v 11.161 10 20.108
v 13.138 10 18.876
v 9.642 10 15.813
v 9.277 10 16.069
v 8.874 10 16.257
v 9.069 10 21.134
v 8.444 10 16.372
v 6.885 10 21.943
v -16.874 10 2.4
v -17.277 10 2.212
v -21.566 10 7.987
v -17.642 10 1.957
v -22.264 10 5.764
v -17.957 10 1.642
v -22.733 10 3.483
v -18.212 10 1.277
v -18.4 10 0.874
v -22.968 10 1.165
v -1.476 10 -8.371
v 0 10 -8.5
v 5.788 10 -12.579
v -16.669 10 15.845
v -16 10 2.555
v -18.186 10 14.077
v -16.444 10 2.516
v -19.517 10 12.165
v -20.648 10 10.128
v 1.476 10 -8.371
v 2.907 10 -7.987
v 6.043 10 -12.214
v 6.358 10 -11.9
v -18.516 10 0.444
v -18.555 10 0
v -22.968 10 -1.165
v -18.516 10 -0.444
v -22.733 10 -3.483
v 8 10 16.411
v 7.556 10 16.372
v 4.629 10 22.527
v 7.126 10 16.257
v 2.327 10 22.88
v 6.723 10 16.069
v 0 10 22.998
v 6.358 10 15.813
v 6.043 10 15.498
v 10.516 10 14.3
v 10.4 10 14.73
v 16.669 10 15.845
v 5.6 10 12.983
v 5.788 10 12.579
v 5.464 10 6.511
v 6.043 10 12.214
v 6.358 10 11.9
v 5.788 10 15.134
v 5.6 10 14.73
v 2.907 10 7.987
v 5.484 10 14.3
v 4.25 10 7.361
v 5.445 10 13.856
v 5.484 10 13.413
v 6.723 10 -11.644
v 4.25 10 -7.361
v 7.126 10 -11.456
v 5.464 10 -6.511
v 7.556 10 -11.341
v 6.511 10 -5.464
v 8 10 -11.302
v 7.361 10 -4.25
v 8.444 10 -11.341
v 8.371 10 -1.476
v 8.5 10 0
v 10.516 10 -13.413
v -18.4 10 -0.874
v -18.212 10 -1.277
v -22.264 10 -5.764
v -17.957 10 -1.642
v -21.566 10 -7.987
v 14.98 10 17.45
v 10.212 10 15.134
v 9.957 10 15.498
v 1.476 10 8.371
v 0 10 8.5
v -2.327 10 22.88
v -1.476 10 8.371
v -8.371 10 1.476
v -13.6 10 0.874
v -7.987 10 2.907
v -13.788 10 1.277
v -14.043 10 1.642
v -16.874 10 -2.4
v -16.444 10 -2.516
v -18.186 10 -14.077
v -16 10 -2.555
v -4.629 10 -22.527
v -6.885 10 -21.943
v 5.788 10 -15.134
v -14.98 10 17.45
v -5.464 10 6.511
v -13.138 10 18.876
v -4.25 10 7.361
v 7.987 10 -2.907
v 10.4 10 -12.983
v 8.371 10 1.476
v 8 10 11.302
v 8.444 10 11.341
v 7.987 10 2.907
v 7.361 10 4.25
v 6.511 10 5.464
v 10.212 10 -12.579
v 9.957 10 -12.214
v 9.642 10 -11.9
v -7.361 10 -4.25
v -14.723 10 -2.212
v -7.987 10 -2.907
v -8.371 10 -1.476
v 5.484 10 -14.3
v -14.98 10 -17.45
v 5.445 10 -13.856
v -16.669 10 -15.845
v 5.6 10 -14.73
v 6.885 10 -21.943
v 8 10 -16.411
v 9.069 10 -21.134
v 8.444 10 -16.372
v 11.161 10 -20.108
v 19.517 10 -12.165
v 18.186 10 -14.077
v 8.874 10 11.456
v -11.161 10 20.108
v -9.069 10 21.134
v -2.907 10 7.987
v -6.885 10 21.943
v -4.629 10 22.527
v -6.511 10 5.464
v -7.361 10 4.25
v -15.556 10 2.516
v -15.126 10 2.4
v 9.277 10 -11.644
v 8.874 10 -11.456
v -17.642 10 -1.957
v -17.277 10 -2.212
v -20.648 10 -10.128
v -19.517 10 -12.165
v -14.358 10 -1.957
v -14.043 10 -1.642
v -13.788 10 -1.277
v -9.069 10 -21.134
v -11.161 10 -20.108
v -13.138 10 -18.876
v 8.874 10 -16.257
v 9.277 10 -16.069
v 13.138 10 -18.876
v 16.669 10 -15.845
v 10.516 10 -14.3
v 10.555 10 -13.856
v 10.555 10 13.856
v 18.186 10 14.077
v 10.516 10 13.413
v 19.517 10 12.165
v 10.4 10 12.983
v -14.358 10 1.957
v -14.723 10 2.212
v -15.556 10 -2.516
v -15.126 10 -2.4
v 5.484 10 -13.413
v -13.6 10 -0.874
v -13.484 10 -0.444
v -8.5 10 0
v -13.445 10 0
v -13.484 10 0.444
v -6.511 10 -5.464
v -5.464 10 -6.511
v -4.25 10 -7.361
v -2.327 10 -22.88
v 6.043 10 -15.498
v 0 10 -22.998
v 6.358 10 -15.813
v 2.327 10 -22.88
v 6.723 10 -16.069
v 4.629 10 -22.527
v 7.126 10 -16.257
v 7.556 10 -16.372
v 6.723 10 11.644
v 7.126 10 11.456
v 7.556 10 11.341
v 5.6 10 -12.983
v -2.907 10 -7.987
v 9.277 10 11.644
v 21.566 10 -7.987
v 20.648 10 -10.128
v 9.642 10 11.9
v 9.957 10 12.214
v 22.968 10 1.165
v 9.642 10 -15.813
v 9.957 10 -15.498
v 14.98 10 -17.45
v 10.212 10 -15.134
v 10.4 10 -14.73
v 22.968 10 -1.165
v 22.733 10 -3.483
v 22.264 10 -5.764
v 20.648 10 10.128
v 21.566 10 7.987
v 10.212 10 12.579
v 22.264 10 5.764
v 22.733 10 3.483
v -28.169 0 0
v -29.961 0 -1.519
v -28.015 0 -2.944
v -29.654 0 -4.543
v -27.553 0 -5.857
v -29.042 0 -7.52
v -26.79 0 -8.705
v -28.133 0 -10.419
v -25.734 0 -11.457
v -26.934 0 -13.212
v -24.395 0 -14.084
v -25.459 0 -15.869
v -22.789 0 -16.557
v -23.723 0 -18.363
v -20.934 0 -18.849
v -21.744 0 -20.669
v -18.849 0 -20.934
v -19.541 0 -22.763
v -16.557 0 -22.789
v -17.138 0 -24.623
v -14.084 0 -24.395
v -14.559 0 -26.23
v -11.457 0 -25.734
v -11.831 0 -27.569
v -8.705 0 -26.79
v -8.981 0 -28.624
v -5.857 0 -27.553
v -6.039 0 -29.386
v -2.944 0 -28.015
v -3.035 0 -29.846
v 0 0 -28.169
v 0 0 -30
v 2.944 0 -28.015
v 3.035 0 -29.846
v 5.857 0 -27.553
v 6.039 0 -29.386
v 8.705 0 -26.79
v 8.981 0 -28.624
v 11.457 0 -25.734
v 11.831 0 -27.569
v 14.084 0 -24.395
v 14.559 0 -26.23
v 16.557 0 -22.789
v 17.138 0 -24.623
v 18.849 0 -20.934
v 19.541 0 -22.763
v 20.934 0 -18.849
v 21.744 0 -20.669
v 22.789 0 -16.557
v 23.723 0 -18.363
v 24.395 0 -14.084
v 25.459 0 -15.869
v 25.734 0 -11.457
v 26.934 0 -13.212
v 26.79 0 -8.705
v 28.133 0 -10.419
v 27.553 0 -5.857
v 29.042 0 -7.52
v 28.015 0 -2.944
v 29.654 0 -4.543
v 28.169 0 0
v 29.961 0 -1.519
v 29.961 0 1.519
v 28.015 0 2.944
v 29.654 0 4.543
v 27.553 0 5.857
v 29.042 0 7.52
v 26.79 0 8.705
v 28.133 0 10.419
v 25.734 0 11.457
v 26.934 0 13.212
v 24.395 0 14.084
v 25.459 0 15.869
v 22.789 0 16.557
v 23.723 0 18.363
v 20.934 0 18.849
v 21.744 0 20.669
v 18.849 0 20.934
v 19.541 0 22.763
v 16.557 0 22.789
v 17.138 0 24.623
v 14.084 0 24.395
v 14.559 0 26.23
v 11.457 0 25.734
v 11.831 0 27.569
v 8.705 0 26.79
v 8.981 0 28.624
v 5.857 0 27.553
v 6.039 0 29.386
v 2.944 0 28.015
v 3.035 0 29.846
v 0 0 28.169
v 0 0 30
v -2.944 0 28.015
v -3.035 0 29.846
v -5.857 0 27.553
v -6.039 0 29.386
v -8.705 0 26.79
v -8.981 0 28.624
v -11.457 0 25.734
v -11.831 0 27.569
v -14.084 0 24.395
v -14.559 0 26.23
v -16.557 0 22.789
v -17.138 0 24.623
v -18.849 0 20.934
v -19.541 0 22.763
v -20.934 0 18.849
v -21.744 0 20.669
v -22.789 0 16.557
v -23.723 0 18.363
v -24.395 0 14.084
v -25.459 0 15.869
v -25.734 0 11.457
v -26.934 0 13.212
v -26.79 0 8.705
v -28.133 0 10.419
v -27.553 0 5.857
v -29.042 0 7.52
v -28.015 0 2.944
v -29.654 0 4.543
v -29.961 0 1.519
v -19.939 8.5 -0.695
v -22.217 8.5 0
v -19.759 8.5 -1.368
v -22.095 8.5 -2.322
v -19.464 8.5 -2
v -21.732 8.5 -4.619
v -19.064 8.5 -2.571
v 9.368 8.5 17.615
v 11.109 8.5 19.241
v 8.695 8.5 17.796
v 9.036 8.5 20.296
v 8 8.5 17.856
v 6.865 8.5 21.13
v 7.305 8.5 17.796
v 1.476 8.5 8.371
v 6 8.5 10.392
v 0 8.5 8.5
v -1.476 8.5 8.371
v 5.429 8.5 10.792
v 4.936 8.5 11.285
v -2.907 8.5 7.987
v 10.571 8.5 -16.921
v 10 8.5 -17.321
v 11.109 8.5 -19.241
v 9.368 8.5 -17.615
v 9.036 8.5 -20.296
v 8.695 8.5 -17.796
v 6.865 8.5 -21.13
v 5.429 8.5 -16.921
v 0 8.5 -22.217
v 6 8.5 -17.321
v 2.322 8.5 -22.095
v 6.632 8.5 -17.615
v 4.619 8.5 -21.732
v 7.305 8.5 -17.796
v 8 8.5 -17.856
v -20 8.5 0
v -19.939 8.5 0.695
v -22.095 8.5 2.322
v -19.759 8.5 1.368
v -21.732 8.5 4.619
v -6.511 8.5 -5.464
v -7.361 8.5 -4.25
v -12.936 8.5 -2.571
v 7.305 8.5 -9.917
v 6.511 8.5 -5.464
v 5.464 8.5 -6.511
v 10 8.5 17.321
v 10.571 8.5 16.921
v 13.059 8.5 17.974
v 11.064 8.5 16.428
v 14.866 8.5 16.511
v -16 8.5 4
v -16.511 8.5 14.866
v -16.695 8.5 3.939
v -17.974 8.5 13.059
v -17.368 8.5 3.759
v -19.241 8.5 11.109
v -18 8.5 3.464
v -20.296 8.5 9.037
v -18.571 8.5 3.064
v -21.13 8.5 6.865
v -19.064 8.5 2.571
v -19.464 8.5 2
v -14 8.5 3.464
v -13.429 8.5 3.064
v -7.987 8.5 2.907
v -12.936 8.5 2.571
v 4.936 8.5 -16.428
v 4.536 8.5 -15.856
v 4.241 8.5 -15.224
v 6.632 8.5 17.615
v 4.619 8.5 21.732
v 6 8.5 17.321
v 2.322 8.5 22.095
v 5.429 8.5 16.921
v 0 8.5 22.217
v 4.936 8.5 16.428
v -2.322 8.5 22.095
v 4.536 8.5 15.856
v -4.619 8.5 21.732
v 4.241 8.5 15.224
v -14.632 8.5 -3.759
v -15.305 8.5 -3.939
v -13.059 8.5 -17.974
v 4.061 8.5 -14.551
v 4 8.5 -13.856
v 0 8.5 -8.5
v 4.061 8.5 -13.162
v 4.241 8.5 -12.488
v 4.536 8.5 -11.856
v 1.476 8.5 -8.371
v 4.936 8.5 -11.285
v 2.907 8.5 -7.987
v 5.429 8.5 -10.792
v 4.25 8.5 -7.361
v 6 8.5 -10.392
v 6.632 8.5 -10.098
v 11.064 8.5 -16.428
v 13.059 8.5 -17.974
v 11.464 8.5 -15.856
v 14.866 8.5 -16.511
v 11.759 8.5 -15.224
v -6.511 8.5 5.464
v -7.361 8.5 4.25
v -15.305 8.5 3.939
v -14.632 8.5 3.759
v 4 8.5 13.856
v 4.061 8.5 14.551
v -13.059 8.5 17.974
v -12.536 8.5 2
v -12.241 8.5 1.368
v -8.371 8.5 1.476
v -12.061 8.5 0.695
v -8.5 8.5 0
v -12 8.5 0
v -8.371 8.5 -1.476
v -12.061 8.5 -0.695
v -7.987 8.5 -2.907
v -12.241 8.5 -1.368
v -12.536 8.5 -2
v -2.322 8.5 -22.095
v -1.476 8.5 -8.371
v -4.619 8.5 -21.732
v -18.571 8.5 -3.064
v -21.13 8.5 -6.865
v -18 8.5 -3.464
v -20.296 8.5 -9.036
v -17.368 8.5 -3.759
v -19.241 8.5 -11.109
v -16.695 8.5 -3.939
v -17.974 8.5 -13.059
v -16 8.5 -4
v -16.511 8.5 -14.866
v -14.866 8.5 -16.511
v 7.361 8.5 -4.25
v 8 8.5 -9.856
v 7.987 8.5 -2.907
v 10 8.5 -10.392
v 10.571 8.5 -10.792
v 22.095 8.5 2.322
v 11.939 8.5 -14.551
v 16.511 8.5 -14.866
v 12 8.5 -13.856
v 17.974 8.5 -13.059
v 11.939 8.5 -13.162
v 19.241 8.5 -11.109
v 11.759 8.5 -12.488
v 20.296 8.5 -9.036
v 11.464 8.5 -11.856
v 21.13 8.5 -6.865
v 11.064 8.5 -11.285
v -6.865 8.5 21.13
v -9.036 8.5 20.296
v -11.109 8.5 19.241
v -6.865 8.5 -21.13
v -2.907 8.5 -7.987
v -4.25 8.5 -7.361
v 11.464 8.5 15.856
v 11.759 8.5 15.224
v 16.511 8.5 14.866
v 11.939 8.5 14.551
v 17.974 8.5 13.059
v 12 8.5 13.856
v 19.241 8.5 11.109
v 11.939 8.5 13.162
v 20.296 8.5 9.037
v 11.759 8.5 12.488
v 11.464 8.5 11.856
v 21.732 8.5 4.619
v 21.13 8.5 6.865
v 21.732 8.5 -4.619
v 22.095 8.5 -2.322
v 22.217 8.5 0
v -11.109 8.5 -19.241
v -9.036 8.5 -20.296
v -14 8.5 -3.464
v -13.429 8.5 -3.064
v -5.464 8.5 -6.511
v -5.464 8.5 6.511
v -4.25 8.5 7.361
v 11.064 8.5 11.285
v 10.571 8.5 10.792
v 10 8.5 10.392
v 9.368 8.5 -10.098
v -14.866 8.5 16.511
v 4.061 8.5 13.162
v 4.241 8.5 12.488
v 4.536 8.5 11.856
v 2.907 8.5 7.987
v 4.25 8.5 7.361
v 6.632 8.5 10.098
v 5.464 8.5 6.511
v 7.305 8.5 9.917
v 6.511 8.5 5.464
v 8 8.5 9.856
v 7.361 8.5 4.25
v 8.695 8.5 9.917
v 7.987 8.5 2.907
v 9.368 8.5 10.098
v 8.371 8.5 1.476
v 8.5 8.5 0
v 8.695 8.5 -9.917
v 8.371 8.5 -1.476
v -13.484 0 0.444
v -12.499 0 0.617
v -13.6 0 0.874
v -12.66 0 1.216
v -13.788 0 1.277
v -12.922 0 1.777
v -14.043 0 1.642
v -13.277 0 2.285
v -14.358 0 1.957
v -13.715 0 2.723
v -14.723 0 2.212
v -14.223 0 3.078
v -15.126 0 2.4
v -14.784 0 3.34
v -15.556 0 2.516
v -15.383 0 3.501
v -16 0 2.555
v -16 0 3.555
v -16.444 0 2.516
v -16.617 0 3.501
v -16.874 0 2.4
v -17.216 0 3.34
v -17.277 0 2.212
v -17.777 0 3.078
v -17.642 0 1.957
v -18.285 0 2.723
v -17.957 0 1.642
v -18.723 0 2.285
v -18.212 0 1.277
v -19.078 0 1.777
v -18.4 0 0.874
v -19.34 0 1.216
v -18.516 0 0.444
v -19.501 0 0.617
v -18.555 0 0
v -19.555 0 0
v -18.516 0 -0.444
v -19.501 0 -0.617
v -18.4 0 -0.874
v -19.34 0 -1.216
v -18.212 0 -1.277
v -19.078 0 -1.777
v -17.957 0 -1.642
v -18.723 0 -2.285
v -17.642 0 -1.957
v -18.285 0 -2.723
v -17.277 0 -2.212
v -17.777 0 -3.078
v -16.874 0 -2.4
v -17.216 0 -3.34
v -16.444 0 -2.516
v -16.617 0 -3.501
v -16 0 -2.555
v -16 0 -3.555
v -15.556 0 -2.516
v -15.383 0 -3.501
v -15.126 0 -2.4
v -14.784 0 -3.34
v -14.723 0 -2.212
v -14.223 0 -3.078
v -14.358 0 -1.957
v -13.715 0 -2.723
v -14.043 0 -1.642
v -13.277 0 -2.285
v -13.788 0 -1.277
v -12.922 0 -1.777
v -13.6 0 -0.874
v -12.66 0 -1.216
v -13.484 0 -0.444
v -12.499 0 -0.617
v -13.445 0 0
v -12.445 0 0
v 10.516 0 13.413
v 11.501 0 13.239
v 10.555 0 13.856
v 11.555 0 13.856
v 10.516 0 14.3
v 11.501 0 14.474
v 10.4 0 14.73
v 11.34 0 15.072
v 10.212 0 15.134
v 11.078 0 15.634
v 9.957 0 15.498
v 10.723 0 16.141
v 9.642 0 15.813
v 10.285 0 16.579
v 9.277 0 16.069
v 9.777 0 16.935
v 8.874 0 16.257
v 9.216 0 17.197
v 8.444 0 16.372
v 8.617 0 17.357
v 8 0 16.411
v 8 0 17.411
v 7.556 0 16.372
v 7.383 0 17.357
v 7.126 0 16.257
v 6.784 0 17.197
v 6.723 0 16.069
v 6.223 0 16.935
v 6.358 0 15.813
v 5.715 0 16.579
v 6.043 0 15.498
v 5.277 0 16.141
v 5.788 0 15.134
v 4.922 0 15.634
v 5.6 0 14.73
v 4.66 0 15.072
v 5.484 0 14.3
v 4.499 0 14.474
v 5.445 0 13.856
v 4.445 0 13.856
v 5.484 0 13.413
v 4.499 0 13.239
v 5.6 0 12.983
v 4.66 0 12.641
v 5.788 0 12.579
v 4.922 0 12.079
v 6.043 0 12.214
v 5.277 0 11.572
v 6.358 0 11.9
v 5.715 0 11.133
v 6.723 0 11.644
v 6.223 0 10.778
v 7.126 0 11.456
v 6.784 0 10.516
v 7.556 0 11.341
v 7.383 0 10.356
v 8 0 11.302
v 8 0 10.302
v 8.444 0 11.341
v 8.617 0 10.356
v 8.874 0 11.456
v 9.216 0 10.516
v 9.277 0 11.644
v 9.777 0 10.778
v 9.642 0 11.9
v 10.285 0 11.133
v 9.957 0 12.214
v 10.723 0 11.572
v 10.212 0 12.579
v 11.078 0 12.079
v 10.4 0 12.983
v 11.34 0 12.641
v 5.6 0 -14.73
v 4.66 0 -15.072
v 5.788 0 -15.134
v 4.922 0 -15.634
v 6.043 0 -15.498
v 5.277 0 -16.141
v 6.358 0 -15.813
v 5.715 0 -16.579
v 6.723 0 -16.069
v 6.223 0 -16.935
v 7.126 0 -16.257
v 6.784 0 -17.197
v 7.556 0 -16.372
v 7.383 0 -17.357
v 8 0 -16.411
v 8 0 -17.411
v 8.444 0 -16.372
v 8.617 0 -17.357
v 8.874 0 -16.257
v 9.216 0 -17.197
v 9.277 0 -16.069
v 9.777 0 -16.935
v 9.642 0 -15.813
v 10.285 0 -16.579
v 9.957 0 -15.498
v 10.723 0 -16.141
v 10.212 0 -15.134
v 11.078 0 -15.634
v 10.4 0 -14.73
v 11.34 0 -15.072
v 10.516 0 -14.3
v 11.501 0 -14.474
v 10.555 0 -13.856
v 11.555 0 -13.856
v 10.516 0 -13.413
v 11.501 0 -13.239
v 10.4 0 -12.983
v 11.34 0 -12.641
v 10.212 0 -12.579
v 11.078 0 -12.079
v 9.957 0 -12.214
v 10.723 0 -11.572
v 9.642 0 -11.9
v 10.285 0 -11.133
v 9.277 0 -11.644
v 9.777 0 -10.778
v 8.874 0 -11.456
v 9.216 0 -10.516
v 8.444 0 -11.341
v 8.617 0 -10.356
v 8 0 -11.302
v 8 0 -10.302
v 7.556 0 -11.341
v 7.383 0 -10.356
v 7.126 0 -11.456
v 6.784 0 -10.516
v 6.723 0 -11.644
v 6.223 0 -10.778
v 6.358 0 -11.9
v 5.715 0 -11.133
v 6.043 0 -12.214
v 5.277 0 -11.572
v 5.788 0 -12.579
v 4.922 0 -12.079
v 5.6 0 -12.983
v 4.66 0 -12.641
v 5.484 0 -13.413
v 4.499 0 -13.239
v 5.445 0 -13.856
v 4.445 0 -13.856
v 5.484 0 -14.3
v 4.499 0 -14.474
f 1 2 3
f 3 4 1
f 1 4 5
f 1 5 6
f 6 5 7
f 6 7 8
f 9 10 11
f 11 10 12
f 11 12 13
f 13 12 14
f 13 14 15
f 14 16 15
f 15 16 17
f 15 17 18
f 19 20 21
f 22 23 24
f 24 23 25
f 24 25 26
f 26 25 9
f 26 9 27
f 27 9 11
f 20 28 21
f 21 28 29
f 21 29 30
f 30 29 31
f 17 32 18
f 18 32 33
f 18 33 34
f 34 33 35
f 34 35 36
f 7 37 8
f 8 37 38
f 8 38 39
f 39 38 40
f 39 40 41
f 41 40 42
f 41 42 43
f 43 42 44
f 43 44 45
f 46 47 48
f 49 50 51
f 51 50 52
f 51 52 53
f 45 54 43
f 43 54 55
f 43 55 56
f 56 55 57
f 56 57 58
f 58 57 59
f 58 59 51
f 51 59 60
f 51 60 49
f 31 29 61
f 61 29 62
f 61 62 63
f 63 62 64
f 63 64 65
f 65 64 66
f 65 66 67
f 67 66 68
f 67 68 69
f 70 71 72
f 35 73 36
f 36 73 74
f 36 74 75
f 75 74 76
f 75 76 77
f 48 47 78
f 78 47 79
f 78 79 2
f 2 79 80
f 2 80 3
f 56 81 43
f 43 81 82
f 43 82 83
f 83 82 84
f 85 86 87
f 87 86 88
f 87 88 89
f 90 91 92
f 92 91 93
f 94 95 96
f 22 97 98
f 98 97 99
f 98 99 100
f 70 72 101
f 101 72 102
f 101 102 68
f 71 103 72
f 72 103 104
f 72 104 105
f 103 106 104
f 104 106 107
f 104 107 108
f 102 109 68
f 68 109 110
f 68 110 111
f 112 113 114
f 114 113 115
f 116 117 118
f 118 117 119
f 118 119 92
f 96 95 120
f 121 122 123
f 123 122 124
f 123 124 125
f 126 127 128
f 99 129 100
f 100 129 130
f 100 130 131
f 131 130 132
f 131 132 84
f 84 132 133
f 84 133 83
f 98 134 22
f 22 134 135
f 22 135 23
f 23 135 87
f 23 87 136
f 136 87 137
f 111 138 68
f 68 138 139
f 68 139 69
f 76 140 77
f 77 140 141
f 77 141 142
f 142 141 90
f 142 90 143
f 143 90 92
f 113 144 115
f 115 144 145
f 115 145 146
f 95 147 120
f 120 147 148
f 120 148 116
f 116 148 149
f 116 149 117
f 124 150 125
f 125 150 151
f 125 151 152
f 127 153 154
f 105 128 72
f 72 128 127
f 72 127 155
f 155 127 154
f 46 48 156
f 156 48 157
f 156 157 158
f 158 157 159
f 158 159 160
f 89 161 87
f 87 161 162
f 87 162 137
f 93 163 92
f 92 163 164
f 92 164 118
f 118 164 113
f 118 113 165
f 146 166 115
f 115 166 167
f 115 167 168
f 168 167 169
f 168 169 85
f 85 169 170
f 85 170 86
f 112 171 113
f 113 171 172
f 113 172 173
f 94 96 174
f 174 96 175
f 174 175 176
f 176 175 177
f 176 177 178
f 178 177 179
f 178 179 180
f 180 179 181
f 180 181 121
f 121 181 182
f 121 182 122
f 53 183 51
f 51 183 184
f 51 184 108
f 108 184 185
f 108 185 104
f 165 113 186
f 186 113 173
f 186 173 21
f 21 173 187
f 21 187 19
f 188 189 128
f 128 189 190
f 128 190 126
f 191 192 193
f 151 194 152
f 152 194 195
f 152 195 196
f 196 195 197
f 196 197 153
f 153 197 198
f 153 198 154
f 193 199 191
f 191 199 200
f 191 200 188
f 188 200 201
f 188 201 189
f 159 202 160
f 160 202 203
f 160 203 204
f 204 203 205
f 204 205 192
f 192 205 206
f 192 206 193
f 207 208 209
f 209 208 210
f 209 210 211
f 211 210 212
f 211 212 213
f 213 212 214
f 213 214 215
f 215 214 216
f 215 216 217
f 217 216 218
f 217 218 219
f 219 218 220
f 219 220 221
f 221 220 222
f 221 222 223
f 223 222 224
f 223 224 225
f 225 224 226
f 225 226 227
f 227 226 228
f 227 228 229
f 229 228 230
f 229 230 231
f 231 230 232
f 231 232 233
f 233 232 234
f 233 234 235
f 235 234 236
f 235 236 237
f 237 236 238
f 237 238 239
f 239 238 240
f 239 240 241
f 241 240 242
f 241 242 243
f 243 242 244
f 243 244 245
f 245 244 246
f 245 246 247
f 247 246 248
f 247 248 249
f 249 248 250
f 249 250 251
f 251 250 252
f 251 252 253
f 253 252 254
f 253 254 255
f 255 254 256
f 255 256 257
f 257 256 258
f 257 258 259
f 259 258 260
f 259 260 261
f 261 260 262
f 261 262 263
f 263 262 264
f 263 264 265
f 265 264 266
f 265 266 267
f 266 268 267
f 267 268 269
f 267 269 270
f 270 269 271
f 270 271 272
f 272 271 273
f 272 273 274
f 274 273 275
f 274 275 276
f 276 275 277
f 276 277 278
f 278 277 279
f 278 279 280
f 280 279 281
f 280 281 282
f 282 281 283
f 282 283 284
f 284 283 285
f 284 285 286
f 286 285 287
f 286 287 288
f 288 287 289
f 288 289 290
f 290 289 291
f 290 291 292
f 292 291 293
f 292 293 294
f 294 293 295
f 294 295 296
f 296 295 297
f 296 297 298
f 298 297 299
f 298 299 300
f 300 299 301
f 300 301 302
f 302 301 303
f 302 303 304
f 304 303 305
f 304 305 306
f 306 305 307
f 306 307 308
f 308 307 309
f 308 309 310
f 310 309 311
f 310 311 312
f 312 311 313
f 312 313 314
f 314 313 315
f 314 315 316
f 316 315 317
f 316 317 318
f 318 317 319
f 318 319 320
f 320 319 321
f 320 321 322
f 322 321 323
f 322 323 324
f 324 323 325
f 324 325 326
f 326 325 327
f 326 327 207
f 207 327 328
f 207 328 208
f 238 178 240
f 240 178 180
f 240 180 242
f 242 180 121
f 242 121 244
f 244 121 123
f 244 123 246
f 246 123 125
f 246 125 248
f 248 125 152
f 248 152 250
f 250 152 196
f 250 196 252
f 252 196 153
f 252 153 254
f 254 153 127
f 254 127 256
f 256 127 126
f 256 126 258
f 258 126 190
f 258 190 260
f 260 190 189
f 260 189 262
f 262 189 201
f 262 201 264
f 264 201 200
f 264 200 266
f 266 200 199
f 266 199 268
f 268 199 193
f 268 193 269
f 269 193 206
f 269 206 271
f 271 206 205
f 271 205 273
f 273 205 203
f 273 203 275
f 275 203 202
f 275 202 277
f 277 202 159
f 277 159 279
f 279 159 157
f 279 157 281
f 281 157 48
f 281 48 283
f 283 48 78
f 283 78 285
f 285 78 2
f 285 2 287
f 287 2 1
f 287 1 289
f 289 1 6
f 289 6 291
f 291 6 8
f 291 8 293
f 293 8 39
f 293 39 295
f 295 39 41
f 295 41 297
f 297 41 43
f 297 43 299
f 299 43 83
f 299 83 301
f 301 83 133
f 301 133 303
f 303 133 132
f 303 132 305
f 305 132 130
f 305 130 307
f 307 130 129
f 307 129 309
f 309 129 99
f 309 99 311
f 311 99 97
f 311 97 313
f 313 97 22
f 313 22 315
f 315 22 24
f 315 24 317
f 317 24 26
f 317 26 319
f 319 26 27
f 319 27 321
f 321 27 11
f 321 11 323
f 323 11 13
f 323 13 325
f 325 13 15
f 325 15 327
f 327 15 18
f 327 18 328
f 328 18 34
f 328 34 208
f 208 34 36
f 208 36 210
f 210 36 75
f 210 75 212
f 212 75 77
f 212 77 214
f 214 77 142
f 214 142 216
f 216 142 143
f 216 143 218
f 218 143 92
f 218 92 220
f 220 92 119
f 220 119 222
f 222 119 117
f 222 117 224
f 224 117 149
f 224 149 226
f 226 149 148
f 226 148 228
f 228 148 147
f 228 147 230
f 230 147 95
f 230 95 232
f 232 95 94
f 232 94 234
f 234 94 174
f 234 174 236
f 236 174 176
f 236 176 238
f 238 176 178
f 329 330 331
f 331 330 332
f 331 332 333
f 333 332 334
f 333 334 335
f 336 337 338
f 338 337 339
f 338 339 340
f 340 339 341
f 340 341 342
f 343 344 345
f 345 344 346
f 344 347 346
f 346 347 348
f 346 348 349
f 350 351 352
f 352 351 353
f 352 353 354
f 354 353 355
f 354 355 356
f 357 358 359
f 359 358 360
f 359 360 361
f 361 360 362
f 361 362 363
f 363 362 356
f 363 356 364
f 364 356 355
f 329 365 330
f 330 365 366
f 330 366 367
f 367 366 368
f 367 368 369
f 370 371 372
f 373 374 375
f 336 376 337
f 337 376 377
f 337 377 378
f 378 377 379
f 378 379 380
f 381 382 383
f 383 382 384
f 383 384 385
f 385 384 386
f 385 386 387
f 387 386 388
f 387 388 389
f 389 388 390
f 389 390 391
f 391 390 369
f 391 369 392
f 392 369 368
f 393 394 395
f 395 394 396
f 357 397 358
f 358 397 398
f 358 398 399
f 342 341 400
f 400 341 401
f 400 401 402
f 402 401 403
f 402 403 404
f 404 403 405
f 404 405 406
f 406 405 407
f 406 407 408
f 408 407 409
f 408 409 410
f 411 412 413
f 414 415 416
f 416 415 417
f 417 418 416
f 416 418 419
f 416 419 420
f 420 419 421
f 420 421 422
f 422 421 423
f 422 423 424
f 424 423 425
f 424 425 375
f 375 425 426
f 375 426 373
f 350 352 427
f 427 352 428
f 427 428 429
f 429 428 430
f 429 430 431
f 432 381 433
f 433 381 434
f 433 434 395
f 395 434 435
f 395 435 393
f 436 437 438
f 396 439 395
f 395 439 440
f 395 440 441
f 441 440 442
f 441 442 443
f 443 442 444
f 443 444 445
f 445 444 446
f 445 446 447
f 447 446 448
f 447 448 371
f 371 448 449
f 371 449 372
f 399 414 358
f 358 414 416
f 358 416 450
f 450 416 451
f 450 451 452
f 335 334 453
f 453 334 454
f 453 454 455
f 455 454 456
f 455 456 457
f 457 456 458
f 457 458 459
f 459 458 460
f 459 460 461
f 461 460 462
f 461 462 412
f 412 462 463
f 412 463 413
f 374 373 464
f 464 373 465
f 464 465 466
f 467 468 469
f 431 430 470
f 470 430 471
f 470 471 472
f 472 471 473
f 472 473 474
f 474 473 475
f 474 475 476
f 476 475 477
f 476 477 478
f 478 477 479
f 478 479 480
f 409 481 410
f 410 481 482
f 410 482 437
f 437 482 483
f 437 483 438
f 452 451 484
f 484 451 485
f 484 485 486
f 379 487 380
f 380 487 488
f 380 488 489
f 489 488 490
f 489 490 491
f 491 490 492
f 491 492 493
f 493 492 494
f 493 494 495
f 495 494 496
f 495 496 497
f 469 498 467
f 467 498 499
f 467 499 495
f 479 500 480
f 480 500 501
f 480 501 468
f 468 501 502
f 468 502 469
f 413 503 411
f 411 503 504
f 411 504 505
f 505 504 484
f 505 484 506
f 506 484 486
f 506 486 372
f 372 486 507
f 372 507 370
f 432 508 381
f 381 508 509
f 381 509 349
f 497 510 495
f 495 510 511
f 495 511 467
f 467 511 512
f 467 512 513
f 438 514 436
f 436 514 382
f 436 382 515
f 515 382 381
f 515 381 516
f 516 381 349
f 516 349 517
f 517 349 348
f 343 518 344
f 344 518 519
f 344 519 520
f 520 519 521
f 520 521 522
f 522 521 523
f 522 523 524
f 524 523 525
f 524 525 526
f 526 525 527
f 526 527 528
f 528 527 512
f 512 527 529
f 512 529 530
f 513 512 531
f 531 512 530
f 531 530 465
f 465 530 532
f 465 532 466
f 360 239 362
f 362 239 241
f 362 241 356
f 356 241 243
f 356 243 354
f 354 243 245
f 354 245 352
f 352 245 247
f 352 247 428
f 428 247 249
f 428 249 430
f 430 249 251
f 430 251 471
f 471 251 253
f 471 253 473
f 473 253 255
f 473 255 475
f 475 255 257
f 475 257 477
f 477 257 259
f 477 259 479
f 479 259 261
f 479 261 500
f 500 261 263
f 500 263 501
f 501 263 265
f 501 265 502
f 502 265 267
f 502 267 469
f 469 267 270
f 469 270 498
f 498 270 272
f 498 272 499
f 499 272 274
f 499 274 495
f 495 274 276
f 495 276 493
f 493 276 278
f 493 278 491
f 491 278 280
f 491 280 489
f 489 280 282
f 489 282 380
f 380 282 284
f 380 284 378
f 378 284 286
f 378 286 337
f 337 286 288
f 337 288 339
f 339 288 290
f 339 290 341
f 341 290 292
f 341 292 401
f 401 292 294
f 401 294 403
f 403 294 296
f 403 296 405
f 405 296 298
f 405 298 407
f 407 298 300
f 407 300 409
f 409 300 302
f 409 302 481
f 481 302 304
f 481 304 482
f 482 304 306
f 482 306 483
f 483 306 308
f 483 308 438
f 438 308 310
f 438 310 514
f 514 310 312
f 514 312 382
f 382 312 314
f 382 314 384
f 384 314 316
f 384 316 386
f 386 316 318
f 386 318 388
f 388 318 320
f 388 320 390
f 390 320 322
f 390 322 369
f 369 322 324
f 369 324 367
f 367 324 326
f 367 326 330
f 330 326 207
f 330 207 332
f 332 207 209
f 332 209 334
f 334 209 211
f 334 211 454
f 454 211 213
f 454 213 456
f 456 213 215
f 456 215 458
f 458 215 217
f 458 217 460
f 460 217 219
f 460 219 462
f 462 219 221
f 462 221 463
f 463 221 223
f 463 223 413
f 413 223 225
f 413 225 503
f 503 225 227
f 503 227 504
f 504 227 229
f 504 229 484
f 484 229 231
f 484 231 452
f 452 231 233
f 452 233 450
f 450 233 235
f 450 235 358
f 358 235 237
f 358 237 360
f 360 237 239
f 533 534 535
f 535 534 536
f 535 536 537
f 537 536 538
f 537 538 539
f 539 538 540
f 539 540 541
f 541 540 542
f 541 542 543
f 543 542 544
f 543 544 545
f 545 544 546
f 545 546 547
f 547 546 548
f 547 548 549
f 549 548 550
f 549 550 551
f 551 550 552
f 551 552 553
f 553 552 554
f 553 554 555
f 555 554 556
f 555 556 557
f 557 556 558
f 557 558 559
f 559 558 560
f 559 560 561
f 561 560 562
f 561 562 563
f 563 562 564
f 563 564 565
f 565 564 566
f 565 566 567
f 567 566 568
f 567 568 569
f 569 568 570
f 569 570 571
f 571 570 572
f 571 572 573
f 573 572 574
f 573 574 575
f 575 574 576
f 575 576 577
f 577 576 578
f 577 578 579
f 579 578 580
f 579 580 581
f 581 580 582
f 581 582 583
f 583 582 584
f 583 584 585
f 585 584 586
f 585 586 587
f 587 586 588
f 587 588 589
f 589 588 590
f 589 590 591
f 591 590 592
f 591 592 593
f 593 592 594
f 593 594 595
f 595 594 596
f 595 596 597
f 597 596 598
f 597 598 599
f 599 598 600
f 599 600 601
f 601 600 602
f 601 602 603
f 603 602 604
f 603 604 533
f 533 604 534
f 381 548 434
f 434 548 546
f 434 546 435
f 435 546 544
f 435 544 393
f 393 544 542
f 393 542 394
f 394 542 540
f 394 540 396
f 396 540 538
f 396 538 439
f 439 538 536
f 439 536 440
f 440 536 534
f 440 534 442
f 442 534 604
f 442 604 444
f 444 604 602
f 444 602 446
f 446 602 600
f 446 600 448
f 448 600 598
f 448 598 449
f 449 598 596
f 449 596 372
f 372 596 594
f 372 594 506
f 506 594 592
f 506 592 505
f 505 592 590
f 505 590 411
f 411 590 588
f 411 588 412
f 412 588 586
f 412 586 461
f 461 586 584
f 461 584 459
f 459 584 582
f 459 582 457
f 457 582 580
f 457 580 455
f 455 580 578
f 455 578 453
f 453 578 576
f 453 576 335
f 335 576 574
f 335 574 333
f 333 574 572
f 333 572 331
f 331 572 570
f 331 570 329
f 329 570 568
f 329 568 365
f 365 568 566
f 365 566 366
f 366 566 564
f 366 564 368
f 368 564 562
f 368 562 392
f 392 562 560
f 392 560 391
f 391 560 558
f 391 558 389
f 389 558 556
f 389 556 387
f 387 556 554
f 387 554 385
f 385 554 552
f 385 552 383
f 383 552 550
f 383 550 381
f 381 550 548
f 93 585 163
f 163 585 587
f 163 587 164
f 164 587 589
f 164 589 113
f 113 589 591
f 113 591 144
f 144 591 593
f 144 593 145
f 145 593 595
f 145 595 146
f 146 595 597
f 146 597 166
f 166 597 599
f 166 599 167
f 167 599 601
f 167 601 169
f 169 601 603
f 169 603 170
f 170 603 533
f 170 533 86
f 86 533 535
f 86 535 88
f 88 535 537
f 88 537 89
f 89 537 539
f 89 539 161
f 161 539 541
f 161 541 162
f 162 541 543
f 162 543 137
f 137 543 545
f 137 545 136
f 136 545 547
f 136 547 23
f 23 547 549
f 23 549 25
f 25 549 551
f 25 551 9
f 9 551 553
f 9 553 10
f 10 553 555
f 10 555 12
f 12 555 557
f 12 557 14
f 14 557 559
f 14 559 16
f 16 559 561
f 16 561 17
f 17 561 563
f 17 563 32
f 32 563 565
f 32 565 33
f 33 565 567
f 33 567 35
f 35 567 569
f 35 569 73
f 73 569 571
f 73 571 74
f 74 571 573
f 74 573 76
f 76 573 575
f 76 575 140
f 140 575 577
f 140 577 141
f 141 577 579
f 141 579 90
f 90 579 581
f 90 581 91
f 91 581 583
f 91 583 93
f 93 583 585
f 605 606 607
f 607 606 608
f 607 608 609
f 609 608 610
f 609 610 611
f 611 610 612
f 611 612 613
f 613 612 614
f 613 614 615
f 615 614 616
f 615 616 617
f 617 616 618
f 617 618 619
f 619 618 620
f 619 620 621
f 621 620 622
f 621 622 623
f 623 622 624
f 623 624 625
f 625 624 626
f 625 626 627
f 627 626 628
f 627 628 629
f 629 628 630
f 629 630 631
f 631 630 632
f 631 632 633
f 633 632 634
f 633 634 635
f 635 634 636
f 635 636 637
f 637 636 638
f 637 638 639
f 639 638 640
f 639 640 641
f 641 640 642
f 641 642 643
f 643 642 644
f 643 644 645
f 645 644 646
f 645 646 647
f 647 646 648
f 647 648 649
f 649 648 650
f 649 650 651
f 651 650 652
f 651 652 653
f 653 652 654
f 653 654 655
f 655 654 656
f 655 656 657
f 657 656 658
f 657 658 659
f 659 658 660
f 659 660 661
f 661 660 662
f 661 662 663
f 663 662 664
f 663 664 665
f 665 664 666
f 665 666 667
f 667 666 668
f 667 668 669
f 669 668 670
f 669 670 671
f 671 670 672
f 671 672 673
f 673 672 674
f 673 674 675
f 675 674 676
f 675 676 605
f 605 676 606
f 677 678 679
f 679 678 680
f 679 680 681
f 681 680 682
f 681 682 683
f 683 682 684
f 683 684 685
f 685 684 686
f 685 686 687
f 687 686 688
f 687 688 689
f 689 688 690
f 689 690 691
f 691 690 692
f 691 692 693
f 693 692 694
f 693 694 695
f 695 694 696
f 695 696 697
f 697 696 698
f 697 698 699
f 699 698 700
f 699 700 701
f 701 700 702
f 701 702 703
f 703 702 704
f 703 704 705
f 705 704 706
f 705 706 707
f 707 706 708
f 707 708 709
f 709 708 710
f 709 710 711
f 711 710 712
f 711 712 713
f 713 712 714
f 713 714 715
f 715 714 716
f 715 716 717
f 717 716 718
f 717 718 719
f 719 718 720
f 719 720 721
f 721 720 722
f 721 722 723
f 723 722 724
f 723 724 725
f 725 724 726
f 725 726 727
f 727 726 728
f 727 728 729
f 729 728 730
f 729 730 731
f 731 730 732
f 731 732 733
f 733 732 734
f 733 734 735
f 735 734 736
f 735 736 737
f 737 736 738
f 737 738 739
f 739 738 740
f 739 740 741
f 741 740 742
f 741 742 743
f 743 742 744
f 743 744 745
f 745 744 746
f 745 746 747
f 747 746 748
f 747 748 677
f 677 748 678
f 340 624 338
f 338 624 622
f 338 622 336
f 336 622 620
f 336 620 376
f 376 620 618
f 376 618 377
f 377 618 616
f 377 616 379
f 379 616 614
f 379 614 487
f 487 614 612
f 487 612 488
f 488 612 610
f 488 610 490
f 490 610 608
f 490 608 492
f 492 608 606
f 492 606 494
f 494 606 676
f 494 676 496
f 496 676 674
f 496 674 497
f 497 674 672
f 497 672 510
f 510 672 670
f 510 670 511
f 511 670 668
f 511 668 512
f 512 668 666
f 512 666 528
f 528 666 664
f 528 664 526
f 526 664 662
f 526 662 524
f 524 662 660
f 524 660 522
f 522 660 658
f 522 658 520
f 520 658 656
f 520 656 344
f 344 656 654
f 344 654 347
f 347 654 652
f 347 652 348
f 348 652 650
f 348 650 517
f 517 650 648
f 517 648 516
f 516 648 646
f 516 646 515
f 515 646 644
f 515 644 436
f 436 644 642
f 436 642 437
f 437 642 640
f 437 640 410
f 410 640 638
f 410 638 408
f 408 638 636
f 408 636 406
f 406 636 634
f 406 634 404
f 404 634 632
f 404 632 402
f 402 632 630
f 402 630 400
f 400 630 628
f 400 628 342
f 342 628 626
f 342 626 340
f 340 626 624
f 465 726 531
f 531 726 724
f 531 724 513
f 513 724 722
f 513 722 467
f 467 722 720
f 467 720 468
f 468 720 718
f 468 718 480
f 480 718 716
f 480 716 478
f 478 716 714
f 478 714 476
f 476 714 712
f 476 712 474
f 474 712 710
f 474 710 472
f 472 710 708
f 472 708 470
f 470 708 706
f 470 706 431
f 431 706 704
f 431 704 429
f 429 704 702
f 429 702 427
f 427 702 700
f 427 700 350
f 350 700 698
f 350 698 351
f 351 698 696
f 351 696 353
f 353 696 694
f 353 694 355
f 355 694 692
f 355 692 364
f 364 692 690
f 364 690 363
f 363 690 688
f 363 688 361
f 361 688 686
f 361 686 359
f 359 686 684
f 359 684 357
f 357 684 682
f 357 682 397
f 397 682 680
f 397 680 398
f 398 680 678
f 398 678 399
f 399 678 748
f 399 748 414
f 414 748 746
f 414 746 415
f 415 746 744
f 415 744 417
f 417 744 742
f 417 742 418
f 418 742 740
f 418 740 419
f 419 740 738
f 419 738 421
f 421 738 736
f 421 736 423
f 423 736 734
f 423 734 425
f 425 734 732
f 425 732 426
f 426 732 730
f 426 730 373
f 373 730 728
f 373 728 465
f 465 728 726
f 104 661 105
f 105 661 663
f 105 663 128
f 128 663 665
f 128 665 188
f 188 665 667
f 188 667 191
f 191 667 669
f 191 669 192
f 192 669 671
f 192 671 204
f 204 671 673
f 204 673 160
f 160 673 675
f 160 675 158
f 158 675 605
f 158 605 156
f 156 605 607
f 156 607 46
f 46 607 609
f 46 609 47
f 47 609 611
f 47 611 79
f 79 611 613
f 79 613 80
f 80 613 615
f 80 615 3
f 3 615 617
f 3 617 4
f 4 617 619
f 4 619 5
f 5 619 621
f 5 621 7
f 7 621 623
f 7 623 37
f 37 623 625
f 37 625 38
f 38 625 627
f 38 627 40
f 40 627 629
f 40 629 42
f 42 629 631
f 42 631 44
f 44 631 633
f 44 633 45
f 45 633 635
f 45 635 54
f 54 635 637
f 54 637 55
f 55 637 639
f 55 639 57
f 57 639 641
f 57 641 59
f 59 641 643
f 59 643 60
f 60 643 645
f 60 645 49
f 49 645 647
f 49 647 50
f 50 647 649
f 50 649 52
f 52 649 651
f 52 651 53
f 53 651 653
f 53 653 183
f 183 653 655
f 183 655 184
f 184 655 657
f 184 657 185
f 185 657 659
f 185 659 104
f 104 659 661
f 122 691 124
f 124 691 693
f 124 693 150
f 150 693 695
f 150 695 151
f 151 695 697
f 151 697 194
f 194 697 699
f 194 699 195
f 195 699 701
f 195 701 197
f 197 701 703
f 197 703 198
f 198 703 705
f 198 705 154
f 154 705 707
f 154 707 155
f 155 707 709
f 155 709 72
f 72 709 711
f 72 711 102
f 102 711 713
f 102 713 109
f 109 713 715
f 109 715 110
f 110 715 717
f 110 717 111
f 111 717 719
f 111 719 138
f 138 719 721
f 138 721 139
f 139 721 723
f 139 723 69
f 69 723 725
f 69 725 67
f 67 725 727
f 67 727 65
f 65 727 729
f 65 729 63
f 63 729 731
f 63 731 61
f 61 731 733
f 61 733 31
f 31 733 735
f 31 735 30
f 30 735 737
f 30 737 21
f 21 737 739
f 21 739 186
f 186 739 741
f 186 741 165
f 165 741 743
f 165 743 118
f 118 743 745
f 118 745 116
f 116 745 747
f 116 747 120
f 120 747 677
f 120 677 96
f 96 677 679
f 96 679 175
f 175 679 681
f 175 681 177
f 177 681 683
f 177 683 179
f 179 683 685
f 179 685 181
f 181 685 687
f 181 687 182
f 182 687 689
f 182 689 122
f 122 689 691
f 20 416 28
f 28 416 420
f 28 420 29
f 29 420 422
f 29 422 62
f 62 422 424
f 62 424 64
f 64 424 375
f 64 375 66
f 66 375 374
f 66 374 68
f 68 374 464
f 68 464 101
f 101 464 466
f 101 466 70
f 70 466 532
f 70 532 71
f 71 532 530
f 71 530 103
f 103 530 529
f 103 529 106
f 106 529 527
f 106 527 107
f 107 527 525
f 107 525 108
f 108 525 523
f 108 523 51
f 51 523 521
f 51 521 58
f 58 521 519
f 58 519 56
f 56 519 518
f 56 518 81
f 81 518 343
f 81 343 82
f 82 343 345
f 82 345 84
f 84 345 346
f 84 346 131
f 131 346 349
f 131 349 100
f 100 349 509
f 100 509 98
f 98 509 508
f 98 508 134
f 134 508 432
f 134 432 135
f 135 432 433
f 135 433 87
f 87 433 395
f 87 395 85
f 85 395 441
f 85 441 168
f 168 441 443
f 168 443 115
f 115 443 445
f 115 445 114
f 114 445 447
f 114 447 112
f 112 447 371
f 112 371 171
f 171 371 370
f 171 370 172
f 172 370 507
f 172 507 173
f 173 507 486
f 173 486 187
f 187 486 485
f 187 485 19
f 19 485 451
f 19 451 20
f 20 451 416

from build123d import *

# Parameters (mm, degrees)
ESQUISSE1_R                                 = 30
BOSS_EXTRU_1_DEPTH                          = 10
CHANFREIN1_SIZE                             = 10
CHANFREIN1_SIZE_2                           = 7.002075382
COQUE2_T                                    = -1.5
ESQUISSE2_R                                 = 4.000000000000001
BOSS_EXTRU_2_DEPTH                          = 8.5
CHANFREIN2_SIZE                             = 8.5
CHANFREIN2_SIZE_2                           = 0.445466124
ESQUISSE5_R                                 = 2.5545338760941463
ENL_V_MAT_EXTRU_1_DEPTH                     = 10
R_P_TITION_CIRCULAIRE1_COUNT                = 3
CHANFREIN2_OF_R_P_TITION_CIRCULAIRE1_SIZE   = 0.445466124
CHANFREIN2_OF_R_P_TITION_CIRCULAIRE1_SIZE_2 = 8.5
ESQUISSE6_R                                 = 8.5
ENL_V_MAT_EXTRU_2_DEPTH                     = 8.5


with BuildPart() as part:
    # Esquisse1 → Boss.-Extru.1 (new body)
    with BuildSketch(Plane(origin=(0, 0, 0), x_dir=(1, 0, 0), z_dir=(0, 1, 0))):
        with Locations(Location((0, 0, 0), (0, 0, 270))):
            Circle(ESQUISSE1_R)
    extrude(amount=BOSS_EXTRU_1_DEPTH)

    # Chanfrein1
    # the kernel refuses this chamfer: 10, 7.002075382 mm, written as the material it takes off along each edge
    with BuildSketch(Plane(origin=(0, 10, 0), x_dir=(-1.8e-16, 0, 1), z_dir=(-1, 0, -1.8e-16))) as chanfrein1_piece_1:
        Polygon((30, -CHANFREIN1_SIZE), (30 - CHANFREIN1_SIZE_2, 0), (30, 0), align=None)
    revolve(axis=Axis((0, 10, 0), (0, 1, 0)), mode=Mode.SUBTRACT)

    # Coque2
    coque2_openings = [part.faces().sort_by_distance(p)[0] for p in [
        (0, 0, 0),
    ]]
    offset(amount=COQUE2_T, openings=coque2_openings, kind=Kind.INTERSECTION)

    # Esquisse2 → Boss.-Extru.2 (add)
    with BuildSketch(Plane.XZ.offset(-8.5)):
        with Locations(Location((-16, 0, 0), (0, 0, 90))):
            Circle(ESQUISSE2_R)
    boss_extru_2 = extrude(amount=BOSS_EXTRU_2_DEPTH)

    # Chanfrein2
    # the kernel refuses this chamfer: 8.5, 0.445466124 mm, written as the material it takes off along each edge
    with BuildSketch(Plane(origin=(-16, 0, 0), x_dir=(0, 0, 1), z_dir=(1, 0, 0))) as chanfrein2_piece_1_section:
        Polygon((4.000000000000001, -CHANFREIN2_SIZE), (4.000000000000001 - CHANFREIN2_SIZE_2, 0), (4.000000000000001, 0), align=None)
    chanfrein2_piece_1 = revolve(axis=Axis((-16, 0, 0), (0, -1, 0)), mode=Mode.PRIVATE)
    chanfrein2_piece_1 = split(chanfrein2_piece_1, bisect_by=Plane(origin=(-16, 8.5, -3.8124488578332274), z_dir=(0, -1, 0)), keep=Keep.TOP, mode=Mode.PRIVATE)
    add(chanfrein2_piece_1, mode=Mode.SUBTRACT)

    # Esquisse5 → Enlèv. mat.-Extru.1 (cut)
    with BuildSketch(Plane.XZ):
        with Locations(Location((-16, 0, 0), (0, 0, 270))):
            Circle(ESQUISSE5_R)
    enl_v_mat_extru_1 = extrude(amount=-ENL_V_MAT_EXTRU_1_DEPTH, mode=Mode.SUBTRACT)

    # Répétition circulaire1: Boss.-Extru.2, Enlèv. mat.-Extru.1 ×3 about axis
    r_p_tition_circulaire1_axis = Axis((9.3e-16, 0, 6.2e-16), (0, 1, 0))
    add([boss_extru_2.rotate(r_p_tition_circulaire1_axis, i * 360 / R_P_TITION_CIRCULAIRE1_COUNT) for i in range(1, R_P_TITION_CIRCULAIRE1_COUNT)])
    add([enl_v_mat_extru_1.rotate(r_p_tition_circulaire1_axis, i * 360 / R_P_TITION_CIRCULAIRE1_COUNT) for i in range(1, R_P_TITION_CIRCULAIRE1_COUNT)], mode=Mode.SUBTRACT)

    # Chanfrein2 of Répétition circulaire1
    # the kernel refuses this chamfer: 8.5, 0.445466124 mm, written as the material it takes off along each edge
    with BuildSketch(Plane(origin=(7.999999999999997, 0, 13.856406460551021), x_dir=(0.8660254037844387, 0, -0.5000000000000001), z_dir=(-0.5000000000000001, 0, -0.8660254037844387))) as chanfrein2_of_r_p_tition_circulaire1_piece_1_section:
        Polygon((4 - CHANFREIN2_OF_R_P_TITION_CIRCULAIRE1_SIZE, 0), (4.000000000000002, -CHANFREIN2_OF_R_P_TITION_CIRCULAIRE1_SIZE_2), (4, 0), align=None)
    chanfrein2_of_r_p_tition_circulaire1_piece_1 = revolve(axis=Axis((7.999999999999997, 0, 13.856406460551021), (0, -1, 0)), mode=Mode.PRIVATE)
    chanfrein2_of_r_p_tition_circulaire1_piece_1 = split(chanfrein2_of_r_p_tition_circulaire1_piece_1, bisect_by=Plane(origin=(4.6983224384874545, 8.5, 15.762630889467637), z_dir=(0, -1, 0)), keep=Keep.TOP, mode=Mode.PRIVATE)
    add(chanfrein2_of_r_p_tition_circulaire1_piece_1, mode=Mode.SUBTRACT)
    with BuildSketch(Plane(origin=(8.000000000000009, 0, -13.856406460551014), x_dir=(-0.8660254037844384, 0, -0.5000000000000003), z_dir=(-0.5000000000000003, 0, 0.8660254037844384))) as chanfrein2_of_r_p_tition_circulaire1_piece_2_section:
        Polygon((4 - CHANFREIN2_OF_R_P_TITION_CIRCULAIRE1_SIZE, 0), (4, -CHANFREIN2_OF_R_P_TITION_CIRCULAIRE1_SIZE_2), (4, 0), align=None)
    chanfrein2_of_r_p_tition_circulaire1_piece_2 = revolve(axis=Axis((8.000000000000009, 0, -13.856406460551014), (0, -1, 0)), mode=Mode.PRIVATE)
    chanfrein2_of_r_p_tition_circulaire1_piece_2 = split(chanfrein2_of_r_p_tition_circulaire1_piece_2, bisect_by=Plane(origin=(11.301677561512552, 8.5, -11.950182031634398), z_dir=(0, -1, 0)), keep=Keep.TOP, mode=Mode.PRIVATE)
    add(chanfrein2_of_r_p_tition_circulaire1_piece_2, mode=Mode.SUBTRACT)

    # Esquisse6 → Enlèv. mat.-Extru.2 (cut)
    with BuildSketch(Plane.XZ.offset(-8.5)):
        with Locations(Location((0, 0, 0), (0, 0, 270))):
            Circle(ESQUISSE6_R)
    extrude(amount=-ENL_V_MAT_EXTRU_2_DEPTH, mode=Mode.SUBTRACT)


solid = part.part
